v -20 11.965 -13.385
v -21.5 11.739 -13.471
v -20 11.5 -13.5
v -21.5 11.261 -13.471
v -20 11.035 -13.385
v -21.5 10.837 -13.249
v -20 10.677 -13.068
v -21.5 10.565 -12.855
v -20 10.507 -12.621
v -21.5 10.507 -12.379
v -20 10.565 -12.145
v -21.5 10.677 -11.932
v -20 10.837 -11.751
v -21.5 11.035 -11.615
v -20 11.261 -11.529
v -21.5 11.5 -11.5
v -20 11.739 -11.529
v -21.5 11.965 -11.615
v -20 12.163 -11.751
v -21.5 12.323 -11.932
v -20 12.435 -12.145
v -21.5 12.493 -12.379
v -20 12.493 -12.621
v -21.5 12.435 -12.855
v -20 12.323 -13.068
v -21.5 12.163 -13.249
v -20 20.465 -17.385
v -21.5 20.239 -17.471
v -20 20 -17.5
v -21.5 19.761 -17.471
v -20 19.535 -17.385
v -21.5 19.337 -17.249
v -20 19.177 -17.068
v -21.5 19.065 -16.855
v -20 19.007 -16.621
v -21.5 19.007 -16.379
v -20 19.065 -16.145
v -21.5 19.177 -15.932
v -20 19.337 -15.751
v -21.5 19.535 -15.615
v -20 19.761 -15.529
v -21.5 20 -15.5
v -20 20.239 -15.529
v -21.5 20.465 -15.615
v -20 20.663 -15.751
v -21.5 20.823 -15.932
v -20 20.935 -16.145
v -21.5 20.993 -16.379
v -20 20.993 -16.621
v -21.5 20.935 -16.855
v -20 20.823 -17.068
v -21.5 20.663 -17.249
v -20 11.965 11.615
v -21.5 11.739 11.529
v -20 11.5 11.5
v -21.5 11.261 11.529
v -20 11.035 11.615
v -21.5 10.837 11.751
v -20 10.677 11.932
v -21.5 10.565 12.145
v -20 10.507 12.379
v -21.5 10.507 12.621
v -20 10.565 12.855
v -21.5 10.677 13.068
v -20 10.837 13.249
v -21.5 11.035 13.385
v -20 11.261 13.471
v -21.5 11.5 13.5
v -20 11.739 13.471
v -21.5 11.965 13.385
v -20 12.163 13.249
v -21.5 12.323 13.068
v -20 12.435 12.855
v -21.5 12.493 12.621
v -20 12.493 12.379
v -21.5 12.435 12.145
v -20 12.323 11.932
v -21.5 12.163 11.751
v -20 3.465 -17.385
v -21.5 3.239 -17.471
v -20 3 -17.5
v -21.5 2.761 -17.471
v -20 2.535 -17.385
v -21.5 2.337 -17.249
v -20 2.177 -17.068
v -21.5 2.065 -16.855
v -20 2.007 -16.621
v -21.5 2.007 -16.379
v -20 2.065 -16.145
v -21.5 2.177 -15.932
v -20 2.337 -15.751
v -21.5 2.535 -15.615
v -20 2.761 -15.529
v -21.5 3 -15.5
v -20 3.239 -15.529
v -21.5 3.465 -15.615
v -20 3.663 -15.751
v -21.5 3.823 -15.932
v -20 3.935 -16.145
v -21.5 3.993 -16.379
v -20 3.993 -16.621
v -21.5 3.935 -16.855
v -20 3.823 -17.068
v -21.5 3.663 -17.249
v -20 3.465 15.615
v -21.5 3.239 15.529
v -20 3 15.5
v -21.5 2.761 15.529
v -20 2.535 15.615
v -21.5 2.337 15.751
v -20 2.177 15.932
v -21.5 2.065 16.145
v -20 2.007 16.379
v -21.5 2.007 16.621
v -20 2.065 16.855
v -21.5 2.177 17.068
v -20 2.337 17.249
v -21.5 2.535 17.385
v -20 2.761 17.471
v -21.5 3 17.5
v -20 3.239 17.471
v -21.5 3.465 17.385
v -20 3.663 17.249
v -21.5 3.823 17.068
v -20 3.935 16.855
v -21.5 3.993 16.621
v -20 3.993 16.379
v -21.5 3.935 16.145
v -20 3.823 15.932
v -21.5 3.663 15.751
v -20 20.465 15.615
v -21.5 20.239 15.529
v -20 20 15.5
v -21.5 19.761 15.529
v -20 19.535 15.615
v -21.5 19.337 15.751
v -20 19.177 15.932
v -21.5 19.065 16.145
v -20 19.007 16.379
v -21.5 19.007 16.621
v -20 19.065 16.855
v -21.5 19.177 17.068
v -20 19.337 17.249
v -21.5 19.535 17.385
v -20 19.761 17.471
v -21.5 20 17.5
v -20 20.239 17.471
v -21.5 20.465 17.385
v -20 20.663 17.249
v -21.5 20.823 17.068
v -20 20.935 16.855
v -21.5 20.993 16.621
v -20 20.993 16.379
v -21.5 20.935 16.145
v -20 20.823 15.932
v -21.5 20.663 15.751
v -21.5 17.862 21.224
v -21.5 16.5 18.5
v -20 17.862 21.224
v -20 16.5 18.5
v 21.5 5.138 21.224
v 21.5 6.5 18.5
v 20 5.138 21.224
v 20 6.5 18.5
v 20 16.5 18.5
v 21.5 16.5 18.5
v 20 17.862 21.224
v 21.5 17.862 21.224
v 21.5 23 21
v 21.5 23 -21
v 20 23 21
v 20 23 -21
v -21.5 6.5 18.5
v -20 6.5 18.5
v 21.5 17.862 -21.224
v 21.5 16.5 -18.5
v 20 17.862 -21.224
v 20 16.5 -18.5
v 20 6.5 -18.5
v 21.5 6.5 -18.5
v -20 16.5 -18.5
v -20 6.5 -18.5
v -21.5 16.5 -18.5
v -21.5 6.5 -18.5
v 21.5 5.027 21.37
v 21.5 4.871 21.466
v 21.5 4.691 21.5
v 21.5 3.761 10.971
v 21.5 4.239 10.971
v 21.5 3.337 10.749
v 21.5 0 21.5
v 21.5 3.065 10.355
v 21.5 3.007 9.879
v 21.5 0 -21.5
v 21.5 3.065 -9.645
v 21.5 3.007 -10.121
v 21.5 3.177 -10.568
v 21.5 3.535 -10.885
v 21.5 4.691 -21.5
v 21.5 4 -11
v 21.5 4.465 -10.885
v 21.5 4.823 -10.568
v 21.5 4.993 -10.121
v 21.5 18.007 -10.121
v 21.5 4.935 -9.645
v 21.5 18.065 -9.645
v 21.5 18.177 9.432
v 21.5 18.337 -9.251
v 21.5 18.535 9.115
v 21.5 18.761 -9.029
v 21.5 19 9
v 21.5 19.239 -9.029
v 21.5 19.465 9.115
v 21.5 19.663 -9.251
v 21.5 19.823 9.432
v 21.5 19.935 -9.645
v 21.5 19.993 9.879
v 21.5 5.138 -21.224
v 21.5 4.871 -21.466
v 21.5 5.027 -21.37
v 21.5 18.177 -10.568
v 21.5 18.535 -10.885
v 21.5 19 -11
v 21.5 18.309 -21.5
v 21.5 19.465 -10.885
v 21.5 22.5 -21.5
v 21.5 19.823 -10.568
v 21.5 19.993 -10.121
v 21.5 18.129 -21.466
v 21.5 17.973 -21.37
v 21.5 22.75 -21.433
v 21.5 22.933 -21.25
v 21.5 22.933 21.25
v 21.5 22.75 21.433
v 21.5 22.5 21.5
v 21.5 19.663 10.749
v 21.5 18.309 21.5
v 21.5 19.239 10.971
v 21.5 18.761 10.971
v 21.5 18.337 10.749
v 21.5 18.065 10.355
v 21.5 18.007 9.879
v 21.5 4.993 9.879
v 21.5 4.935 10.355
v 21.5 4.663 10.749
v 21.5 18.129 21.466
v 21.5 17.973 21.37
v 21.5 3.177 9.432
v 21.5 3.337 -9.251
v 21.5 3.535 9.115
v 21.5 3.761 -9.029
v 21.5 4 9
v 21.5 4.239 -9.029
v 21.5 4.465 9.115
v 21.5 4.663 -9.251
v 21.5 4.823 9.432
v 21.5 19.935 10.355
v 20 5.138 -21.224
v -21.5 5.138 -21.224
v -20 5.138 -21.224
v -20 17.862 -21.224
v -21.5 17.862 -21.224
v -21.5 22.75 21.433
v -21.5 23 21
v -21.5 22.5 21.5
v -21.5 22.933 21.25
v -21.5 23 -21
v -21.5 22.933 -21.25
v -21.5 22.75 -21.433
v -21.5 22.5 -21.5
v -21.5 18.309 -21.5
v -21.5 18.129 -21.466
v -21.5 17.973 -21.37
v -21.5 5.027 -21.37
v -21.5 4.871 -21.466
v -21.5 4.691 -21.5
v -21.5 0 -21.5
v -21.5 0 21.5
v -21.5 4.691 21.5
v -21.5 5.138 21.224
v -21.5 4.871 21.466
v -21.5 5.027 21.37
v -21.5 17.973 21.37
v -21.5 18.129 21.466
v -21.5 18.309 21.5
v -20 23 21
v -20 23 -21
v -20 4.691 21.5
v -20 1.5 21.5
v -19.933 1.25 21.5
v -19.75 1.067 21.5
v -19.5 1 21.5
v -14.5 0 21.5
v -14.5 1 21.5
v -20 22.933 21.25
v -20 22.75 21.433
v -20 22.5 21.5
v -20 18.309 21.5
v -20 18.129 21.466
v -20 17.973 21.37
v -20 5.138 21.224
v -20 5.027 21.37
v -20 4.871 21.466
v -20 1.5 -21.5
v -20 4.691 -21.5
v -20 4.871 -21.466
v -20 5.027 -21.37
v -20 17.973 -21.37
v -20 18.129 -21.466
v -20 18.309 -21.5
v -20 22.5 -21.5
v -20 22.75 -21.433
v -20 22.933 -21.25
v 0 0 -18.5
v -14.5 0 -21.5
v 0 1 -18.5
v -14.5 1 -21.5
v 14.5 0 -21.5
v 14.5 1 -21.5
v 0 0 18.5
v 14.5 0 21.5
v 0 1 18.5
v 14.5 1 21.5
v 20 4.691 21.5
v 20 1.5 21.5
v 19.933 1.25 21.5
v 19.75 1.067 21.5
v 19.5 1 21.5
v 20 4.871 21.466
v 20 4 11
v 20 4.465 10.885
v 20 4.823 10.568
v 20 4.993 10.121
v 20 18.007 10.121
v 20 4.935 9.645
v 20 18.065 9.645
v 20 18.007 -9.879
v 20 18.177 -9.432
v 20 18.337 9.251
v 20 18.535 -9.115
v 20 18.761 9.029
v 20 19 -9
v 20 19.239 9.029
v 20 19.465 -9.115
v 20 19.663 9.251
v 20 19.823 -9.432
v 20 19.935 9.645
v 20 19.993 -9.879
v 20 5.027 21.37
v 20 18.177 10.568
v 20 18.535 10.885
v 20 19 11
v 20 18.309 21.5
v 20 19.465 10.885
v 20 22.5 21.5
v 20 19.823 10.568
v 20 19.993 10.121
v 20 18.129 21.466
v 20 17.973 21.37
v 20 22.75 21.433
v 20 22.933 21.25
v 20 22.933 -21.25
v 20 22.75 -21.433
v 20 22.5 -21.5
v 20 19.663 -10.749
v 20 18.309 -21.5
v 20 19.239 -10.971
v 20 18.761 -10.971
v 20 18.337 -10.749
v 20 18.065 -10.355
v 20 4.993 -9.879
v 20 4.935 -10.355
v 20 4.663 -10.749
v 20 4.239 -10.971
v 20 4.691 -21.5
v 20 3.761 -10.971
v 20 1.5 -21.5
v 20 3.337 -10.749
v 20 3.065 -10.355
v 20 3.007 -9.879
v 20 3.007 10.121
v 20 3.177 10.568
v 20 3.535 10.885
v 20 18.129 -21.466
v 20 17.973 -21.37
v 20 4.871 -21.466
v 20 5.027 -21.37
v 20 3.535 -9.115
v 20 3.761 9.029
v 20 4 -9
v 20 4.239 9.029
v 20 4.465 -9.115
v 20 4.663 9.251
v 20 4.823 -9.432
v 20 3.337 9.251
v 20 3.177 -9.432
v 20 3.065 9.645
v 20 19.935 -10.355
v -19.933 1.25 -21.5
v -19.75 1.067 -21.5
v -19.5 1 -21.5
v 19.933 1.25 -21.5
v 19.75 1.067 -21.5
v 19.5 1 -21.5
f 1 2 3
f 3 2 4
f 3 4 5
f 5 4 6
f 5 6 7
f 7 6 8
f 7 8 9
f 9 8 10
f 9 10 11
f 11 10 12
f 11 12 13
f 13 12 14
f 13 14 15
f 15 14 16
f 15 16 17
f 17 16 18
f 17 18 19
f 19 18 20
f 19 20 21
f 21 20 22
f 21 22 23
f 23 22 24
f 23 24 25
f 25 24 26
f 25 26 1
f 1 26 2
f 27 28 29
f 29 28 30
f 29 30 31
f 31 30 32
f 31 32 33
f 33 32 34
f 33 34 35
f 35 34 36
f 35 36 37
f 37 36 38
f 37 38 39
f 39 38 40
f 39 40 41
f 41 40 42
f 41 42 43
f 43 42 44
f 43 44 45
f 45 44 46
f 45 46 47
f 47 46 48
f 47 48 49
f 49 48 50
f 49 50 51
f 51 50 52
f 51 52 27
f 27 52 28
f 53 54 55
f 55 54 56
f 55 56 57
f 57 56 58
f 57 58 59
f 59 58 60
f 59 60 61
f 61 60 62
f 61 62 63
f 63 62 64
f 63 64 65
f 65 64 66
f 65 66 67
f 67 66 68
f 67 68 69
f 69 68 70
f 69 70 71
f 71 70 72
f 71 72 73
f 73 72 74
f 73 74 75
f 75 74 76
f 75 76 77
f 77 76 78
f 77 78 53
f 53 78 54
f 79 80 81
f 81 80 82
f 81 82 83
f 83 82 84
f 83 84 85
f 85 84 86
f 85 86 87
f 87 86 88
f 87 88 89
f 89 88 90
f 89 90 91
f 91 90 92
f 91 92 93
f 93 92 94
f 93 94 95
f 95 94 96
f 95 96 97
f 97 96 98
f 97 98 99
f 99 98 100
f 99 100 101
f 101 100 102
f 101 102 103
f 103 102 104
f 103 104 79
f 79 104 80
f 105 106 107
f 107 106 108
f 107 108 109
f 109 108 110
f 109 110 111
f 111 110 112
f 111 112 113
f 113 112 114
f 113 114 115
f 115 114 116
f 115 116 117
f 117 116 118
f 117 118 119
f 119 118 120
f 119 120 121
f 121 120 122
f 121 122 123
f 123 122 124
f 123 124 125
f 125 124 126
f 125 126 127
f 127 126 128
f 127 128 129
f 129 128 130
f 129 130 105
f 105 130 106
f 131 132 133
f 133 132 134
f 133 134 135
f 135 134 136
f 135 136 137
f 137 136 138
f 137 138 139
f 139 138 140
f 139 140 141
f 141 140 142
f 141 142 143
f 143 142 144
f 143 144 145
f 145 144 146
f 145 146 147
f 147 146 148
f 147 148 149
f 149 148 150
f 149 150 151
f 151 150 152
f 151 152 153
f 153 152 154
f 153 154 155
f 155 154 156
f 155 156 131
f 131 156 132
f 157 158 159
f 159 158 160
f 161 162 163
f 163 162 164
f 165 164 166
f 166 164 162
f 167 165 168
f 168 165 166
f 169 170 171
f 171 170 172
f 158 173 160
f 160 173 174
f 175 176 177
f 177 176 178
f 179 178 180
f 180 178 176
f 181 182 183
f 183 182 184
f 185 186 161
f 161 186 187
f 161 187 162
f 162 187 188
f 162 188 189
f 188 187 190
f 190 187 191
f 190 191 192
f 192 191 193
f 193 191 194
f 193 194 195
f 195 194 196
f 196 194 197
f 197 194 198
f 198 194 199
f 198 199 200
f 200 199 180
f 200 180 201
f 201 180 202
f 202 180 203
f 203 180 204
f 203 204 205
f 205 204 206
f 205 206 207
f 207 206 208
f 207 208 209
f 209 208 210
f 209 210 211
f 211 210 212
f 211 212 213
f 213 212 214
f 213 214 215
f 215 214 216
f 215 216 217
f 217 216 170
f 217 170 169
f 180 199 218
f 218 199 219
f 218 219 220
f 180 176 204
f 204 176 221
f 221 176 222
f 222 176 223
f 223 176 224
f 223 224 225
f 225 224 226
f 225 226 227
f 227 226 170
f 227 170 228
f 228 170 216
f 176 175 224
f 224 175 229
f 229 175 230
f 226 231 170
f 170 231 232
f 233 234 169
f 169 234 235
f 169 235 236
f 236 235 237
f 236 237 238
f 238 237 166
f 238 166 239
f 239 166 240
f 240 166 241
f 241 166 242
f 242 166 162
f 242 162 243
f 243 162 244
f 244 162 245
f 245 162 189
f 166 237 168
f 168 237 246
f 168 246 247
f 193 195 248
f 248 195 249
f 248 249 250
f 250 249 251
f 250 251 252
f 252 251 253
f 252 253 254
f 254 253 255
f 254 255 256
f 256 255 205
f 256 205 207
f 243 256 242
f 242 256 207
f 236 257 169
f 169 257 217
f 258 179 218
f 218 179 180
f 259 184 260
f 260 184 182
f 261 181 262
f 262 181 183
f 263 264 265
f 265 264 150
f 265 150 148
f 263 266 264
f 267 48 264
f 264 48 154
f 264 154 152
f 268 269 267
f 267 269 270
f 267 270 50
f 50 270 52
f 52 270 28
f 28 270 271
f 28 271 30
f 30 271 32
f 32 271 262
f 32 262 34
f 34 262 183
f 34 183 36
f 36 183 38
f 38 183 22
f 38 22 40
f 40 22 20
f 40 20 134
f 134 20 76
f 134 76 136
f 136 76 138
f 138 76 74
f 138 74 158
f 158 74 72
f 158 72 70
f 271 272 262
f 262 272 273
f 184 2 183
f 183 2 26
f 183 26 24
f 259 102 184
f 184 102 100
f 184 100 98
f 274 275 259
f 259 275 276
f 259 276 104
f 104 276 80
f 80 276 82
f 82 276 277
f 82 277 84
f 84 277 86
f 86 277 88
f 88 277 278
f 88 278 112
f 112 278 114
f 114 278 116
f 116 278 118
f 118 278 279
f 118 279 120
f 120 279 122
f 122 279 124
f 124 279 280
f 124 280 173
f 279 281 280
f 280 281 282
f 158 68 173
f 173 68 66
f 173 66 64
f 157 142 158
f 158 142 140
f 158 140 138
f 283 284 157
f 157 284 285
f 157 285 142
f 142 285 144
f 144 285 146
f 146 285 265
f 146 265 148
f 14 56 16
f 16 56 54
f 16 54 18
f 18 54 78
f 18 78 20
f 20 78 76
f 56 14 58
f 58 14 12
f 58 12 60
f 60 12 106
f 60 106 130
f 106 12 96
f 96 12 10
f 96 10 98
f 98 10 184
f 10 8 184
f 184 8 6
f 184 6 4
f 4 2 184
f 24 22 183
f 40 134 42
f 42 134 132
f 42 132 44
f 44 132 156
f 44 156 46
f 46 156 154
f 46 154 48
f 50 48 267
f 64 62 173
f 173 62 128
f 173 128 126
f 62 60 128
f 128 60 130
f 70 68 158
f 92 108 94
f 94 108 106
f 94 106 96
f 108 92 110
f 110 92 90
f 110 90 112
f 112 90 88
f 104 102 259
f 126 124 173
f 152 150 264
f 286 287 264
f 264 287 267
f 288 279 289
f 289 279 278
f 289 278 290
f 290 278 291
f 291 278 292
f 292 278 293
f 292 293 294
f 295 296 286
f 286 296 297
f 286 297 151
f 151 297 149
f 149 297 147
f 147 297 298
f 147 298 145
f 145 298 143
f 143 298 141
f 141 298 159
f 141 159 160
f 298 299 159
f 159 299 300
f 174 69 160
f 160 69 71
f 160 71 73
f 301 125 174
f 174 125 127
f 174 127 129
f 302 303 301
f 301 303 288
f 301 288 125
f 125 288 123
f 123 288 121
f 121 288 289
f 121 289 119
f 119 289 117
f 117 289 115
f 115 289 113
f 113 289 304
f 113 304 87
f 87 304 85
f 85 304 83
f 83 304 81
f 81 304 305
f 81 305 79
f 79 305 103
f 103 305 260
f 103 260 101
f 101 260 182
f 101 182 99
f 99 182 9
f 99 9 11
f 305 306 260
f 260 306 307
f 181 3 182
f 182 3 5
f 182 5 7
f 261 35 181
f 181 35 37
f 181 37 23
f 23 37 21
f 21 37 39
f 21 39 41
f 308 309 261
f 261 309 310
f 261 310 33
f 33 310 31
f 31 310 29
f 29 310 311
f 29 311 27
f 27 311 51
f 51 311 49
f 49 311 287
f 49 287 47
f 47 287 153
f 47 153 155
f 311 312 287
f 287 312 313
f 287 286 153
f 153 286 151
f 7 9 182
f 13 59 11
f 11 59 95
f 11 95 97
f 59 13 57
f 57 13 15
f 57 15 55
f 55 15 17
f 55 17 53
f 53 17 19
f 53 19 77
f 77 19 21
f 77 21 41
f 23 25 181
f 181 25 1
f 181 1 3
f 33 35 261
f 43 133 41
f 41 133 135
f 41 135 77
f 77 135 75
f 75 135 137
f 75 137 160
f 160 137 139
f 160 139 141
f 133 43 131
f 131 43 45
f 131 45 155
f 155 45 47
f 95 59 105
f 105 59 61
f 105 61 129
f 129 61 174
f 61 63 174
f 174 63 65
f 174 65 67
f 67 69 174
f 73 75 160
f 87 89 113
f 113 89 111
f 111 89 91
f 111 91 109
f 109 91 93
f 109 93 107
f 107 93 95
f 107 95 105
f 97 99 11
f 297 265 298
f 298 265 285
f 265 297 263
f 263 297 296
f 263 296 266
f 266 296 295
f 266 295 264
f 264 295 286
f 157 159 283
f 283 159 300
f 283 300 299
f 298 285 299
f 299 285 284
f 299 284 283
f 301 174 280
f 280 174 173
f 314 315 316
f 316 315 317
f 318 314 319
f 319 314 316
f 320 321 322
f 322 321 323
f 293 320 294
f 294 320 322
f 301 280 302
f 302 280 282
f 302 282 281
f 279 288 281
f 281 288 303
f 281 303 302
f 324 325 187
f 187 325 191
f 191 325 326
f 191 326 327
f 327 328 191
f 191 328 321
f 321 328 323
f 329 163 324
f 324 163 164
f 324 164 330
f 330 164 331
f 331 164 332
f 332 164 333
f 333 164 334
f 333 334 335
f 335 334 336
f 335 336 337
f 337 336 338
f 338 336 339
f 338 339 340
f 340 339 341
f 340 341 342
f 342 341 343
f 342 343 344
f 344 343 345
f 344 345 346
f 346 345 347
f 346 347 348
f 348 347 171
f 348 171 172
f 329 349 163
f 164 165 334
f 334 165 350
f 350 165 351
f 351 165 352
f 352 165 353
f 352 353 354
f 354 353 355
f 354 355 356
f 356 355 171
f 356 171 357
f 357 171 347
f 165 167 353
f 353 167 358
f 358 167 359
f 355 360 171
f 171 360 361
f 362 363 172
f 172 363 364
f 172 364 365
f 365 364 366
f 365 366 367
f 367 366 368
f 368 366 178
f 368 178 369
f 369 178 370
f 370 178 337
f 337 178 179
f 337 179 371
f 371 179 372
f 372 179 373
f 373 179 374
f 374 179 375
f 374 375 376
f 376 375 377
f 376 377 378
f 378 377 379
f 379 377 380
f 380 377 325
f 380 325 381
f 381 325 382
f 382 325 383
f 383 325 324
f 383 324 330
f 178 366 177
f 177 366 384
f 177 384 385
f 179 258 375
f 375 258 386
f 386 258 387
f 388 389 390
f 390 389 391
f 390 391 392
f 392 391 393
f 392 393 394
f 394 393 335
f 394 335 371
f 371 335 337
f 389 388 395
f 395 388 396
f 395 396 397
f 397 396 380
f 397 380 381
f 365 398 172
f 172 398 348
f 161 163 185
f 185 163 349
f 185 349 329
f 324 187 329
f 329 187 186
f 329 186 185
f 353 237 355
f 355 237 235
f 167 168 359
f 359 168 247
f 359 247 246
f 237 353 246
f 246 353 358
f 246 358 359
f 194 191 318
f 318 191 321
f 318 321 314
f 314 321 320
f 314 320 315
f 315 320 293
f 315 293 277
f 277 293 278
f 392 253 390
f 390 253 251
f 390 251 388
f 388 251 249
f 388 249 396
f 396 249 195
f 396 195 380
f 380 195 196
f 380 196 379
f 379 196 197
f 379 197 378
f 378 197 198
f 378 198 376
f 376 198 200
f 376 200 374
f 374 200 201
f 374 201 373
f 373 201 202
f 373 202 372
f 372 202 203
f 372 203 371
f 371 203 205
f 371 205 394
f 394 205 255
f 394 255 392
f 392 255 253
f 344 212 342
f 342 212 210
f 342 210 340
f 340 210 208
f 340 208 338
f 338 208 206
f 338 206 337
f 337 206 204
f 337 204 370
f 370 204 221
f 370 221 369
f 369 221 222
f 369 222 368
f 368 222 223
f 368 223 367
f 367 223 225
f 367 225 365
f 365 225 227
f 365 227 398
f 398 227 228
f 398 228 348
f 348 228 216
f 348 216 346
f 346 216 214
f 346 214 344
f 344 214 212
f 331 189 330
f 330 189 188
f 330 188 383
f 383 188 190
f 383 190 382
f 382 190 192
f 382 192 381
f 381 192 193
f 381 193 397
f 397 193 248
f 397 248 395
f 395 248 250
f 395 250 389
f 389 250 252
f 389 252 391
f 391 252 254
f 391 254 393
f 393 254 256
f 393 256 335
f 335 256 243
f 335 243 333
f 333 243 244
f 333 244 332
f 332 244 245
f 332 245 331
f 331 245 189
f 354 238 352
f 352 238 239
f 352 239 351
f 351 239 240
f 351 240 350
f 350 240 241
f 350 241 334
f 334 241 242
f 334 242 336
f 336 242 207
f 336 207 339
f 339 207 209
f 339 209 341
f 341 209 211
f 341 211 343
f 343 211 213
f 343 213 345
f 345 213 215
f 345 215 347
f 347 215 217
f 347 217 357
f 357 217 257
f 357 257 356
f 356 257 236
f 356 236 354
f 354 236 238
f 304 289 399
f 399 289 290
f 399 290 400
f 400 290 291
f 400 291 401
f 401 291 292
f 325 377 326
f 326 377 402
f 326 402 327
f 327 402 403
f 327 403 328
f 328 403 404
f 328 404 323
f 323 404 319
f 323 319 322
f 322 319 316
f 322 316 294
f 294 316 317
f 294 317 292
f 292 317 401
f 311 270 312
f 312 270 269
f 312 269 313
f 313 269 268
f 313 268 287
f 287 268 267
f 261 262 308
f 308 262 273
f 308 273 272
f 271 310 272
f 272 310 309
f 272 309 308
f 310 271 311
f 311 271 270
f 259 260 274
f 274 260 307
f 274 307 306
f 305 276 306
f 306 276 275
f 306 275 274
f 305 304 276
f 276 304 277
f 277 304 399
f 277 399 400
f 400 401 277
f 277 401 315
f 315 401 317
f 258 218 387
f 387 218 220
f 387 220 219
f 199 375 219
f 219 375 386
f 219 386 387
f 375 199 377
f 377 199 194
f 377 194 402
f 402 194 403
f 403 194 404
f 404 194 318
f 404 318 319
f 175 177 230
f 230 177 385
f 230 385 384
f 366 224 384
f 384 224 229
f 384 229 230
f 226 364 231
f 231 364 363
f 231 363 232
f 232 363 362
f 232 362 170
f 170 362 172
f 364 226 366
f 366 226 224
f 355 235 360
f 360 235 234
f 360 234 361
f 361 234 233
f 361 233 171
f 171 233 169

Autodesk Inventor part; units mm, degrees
ref_plane "YZ Plane" through (0, 0, 0) normal (1, 0, 0) x (0, 1, 0)
ref_plane "XZ Plane" through (0, 0, 0) normal (0, 1, 0) x (-1, 0, 0)
ref_plane "XY Plane" through (0, 0, 0) normal (0, 0, 1) x (1, 0, 0)
sketch "Esboço1" plane through (0, 0, 0) normal (0, 1, 0) x (-1, 0, 0)
  line L0 (-21.5, 21.5) -> (-21.5, -21.5)
  line L1 (21.5, -21.5) -> (21.5, 21.5)
  line L2 (21.5, 21.5) -> (-21.5, -21.5) construction
  line L3 (-21.5, 21.5) -> (21.5, -21.5) construction
  line L4 (21.5, -21.5) -> (14.5, -21.5)
  line L5 (14.5, -21.5) -> (0, -18.5)
  line L6 (-21.5, -21.5) -> (-14.5, -21.5)
  line L7 (-14.5, -21.5) -> (0, -18.5)
  line L8 (-21.5, -21.5) -> (-14.5, -21.5)
  line L9 (14.5, -21.5) -> (21.5, -21.5)
  line L10 (21.5, 21.5) -> (14.5, 21.5)
  line L11 (14.5, 21.5) -> (0, 18.5)
  line L12 (-21.5, 21.5) -> (-14.5, 21.5)
  line L13 (-14.5, 21.5) -> (0, 18.5)
  line L14 (20, -20) -> (20, 20)
  line L15 (20, 20) -> (14.6535, 20)
  line L16 (14.6535, 20) -> (0, 16.9682)
  line L17 (0, 16.9682) -> (-14.6535, 20)
  line L18 (-14.6535, 20) -> (-20, 20)
  line L19 (-20, 20) -> (-20, -20)
  line L20 (20, -20) -> (14.6535, -20)
  line L21 (14.6535, -20) -> (0, -16.9682)
  line L22 (0, -16.9682) -> (-14.6535, -20)
  line L23 (-14.6535, -20) -> (-20, -20)
  line L24 (20, 20) -> (20, 21.5)
  line L25 (20, -20) -> (20, -21.5)
  line L26 (-20, -20) -> (-20, -21.5)
  line L27 (-20, 20) -> (-20, 21.5)
  point P0 (0, 0)
  dimension "d0" = 43
  dimension "d1" = 43
  dimension "d2" = 37
  dimension "d3" = 7
  dimension "d4" = 7
extrude "Extrusão1" add sketch "Esboço1" along normal blind 23 contours L12 L27 L19 L26 L6 L0 | L10 L1 L4 L25 L14 L24
extrude "Extrusão2" add sketch "Esboço1" along normal blind 1 contours L12 L13 L11 L10 L24 L15 L16 L17 L18 L27 | L26 L23 L22 L21 L20 L25 L4 L5 L7 L6 | L18 L17 L16 L15 L14 L20 L21 L22 L23 L19
sketch "Esboço2" plane through (-21.5, 0, -21.5) normal (-1, 0, 0) x (0, 0, 1)
  line L0 (0, 0) -> (0, 23) projected
  line L1 (0, 23) -> (0, 18)
  line L2 (3, 0) -> (0, 0) projected
  line L3 (0, 0) -> (0, 5)
  line L4 (0, 11.5) -> (43, 11.5)
  line L5 (43, 0) -> (43, 23) projected
  line L6 (3, 11.5) -> (40, 11.5)
  line L7 (3, 16.5) -> (3, 6.5)
  line L8 (0, 18) -> (3, 16.5)
  line L9 (0, 5) -> (3, 6.5)
  line L10 (0, 18) -> (0, 5)
  line L11 (43, 23) -> (0, 23) projected
  line L12 (21.5, 23) -> (21.5, 0)
  line L13 (43, 23) -> (43, 18)
  line L14 (43, 0) -> (43, 5)
  line L15 (40, 16.5) -> (40, 6.5)
  line L16 (43, 18) -> (40, 16.5)
  line L17 (43, 5) -> (40, 6.5)
  line L18 (43, 18) -> (43, 5)
  line L19 (43, 0) -> (0, 0) projected
  line L20 (43, 0) -> (38, 0)
  line L21 (43, 5) -> (43, 0)
  circle A0 centre (38, 3) radius 1
  circle A1 centre (38, 20) radius 1
  circle A2 centre (5, 3) radius 1
  circle A3 centre (5, 20) radius 1
  line L22 (0, 11.5) -> (8, 11.5)
  line L23 (8, 11.5) -> (9, 11.5)
  circle A4 centre (9, 11.5) radius 1
  line L24 (43, 11.5) -> (34, 11.5)
  circle A5 centre (34, 11.5) radius 1
  point P0 (21.5, 11.5)
  dimension "d15" = 5
  dimension "d16" = 5
  dimension "d17" = 37
  dimension "d18" = 10
  dimension "d26" = 2
  dimension "d29" = 17
  dimension "d32" = 33
  dimension "d35" = 8
  dimension "d36" = 1
  dimension "d37" = 2
  dimension "d38" = 3
  dimension "d39" = 5
  dimension "d40" = 9
  dimension "d41" = 2
extrude "Extrusão3" cut sketch "Esboço2" along normal blind 1 and the other way blind 60.75 contours L0 L4 L7 L9 | L0 L8 L7 L4 | L17 L15 L4 L5 | L15 L16 L5 L4
extrude "Extrusão4" cut sketch "Esboço2" against normal blind 3 contours A4 L4 | L4 A4 | A5 L4 | L4 A5 | A0 | A1 | A2 | A3
sketch "Esboço5" plane through (21.5, 0, 21.5) normal (1, 0, 0) x (0, 0, -1)
  line L0 (11.5, 0) -> (31.5, 0)
  line L1 (0, 0) -> (43, 0) projected
  line L2 (11.5, 0) -> (11.5, 4)
  line L3 (31.5, 0) -> (31.5, 3)
  circle A0 centre (11.5, 4) radius 1
  circle A1 centre (31.5, 4) radius 1
  circle A2 centre (11.5, 19) radius 1
  circle A3 centre (31.5, 19) radius 1
  line L4 (0, 23) -> (43, 23) projected
  point P0 (21.5, 0)
  dimension "d46" = 3
  dimension "d47" = 2
  dimension "d50" = 20
  dimension "d53" = 15
  dimension "d56" = 4
extrude "Extrusão5" cut sketch "Esboço5" against normal blind 3
fillet "Arredondamento2" radius 0.5 14 edges at (-20, 1, 0) (20, 1, 0) (-20.75, 23, -21.5) (-20.75, 18, -21.5) (-20.75, 5, -21.5) (20.75, 5, -21.5) (20.75, 18, -21.5) (20.75, 23, -21.5) (20.75, 23, 21.5) (20.75, 18, 21.5) (20.75, 5, 21.5) (-20.75, 5, 21.5) (-20.75, 18, 21.5) (-20.75, 23, 21.5)
properties part number "BiaFrame"
